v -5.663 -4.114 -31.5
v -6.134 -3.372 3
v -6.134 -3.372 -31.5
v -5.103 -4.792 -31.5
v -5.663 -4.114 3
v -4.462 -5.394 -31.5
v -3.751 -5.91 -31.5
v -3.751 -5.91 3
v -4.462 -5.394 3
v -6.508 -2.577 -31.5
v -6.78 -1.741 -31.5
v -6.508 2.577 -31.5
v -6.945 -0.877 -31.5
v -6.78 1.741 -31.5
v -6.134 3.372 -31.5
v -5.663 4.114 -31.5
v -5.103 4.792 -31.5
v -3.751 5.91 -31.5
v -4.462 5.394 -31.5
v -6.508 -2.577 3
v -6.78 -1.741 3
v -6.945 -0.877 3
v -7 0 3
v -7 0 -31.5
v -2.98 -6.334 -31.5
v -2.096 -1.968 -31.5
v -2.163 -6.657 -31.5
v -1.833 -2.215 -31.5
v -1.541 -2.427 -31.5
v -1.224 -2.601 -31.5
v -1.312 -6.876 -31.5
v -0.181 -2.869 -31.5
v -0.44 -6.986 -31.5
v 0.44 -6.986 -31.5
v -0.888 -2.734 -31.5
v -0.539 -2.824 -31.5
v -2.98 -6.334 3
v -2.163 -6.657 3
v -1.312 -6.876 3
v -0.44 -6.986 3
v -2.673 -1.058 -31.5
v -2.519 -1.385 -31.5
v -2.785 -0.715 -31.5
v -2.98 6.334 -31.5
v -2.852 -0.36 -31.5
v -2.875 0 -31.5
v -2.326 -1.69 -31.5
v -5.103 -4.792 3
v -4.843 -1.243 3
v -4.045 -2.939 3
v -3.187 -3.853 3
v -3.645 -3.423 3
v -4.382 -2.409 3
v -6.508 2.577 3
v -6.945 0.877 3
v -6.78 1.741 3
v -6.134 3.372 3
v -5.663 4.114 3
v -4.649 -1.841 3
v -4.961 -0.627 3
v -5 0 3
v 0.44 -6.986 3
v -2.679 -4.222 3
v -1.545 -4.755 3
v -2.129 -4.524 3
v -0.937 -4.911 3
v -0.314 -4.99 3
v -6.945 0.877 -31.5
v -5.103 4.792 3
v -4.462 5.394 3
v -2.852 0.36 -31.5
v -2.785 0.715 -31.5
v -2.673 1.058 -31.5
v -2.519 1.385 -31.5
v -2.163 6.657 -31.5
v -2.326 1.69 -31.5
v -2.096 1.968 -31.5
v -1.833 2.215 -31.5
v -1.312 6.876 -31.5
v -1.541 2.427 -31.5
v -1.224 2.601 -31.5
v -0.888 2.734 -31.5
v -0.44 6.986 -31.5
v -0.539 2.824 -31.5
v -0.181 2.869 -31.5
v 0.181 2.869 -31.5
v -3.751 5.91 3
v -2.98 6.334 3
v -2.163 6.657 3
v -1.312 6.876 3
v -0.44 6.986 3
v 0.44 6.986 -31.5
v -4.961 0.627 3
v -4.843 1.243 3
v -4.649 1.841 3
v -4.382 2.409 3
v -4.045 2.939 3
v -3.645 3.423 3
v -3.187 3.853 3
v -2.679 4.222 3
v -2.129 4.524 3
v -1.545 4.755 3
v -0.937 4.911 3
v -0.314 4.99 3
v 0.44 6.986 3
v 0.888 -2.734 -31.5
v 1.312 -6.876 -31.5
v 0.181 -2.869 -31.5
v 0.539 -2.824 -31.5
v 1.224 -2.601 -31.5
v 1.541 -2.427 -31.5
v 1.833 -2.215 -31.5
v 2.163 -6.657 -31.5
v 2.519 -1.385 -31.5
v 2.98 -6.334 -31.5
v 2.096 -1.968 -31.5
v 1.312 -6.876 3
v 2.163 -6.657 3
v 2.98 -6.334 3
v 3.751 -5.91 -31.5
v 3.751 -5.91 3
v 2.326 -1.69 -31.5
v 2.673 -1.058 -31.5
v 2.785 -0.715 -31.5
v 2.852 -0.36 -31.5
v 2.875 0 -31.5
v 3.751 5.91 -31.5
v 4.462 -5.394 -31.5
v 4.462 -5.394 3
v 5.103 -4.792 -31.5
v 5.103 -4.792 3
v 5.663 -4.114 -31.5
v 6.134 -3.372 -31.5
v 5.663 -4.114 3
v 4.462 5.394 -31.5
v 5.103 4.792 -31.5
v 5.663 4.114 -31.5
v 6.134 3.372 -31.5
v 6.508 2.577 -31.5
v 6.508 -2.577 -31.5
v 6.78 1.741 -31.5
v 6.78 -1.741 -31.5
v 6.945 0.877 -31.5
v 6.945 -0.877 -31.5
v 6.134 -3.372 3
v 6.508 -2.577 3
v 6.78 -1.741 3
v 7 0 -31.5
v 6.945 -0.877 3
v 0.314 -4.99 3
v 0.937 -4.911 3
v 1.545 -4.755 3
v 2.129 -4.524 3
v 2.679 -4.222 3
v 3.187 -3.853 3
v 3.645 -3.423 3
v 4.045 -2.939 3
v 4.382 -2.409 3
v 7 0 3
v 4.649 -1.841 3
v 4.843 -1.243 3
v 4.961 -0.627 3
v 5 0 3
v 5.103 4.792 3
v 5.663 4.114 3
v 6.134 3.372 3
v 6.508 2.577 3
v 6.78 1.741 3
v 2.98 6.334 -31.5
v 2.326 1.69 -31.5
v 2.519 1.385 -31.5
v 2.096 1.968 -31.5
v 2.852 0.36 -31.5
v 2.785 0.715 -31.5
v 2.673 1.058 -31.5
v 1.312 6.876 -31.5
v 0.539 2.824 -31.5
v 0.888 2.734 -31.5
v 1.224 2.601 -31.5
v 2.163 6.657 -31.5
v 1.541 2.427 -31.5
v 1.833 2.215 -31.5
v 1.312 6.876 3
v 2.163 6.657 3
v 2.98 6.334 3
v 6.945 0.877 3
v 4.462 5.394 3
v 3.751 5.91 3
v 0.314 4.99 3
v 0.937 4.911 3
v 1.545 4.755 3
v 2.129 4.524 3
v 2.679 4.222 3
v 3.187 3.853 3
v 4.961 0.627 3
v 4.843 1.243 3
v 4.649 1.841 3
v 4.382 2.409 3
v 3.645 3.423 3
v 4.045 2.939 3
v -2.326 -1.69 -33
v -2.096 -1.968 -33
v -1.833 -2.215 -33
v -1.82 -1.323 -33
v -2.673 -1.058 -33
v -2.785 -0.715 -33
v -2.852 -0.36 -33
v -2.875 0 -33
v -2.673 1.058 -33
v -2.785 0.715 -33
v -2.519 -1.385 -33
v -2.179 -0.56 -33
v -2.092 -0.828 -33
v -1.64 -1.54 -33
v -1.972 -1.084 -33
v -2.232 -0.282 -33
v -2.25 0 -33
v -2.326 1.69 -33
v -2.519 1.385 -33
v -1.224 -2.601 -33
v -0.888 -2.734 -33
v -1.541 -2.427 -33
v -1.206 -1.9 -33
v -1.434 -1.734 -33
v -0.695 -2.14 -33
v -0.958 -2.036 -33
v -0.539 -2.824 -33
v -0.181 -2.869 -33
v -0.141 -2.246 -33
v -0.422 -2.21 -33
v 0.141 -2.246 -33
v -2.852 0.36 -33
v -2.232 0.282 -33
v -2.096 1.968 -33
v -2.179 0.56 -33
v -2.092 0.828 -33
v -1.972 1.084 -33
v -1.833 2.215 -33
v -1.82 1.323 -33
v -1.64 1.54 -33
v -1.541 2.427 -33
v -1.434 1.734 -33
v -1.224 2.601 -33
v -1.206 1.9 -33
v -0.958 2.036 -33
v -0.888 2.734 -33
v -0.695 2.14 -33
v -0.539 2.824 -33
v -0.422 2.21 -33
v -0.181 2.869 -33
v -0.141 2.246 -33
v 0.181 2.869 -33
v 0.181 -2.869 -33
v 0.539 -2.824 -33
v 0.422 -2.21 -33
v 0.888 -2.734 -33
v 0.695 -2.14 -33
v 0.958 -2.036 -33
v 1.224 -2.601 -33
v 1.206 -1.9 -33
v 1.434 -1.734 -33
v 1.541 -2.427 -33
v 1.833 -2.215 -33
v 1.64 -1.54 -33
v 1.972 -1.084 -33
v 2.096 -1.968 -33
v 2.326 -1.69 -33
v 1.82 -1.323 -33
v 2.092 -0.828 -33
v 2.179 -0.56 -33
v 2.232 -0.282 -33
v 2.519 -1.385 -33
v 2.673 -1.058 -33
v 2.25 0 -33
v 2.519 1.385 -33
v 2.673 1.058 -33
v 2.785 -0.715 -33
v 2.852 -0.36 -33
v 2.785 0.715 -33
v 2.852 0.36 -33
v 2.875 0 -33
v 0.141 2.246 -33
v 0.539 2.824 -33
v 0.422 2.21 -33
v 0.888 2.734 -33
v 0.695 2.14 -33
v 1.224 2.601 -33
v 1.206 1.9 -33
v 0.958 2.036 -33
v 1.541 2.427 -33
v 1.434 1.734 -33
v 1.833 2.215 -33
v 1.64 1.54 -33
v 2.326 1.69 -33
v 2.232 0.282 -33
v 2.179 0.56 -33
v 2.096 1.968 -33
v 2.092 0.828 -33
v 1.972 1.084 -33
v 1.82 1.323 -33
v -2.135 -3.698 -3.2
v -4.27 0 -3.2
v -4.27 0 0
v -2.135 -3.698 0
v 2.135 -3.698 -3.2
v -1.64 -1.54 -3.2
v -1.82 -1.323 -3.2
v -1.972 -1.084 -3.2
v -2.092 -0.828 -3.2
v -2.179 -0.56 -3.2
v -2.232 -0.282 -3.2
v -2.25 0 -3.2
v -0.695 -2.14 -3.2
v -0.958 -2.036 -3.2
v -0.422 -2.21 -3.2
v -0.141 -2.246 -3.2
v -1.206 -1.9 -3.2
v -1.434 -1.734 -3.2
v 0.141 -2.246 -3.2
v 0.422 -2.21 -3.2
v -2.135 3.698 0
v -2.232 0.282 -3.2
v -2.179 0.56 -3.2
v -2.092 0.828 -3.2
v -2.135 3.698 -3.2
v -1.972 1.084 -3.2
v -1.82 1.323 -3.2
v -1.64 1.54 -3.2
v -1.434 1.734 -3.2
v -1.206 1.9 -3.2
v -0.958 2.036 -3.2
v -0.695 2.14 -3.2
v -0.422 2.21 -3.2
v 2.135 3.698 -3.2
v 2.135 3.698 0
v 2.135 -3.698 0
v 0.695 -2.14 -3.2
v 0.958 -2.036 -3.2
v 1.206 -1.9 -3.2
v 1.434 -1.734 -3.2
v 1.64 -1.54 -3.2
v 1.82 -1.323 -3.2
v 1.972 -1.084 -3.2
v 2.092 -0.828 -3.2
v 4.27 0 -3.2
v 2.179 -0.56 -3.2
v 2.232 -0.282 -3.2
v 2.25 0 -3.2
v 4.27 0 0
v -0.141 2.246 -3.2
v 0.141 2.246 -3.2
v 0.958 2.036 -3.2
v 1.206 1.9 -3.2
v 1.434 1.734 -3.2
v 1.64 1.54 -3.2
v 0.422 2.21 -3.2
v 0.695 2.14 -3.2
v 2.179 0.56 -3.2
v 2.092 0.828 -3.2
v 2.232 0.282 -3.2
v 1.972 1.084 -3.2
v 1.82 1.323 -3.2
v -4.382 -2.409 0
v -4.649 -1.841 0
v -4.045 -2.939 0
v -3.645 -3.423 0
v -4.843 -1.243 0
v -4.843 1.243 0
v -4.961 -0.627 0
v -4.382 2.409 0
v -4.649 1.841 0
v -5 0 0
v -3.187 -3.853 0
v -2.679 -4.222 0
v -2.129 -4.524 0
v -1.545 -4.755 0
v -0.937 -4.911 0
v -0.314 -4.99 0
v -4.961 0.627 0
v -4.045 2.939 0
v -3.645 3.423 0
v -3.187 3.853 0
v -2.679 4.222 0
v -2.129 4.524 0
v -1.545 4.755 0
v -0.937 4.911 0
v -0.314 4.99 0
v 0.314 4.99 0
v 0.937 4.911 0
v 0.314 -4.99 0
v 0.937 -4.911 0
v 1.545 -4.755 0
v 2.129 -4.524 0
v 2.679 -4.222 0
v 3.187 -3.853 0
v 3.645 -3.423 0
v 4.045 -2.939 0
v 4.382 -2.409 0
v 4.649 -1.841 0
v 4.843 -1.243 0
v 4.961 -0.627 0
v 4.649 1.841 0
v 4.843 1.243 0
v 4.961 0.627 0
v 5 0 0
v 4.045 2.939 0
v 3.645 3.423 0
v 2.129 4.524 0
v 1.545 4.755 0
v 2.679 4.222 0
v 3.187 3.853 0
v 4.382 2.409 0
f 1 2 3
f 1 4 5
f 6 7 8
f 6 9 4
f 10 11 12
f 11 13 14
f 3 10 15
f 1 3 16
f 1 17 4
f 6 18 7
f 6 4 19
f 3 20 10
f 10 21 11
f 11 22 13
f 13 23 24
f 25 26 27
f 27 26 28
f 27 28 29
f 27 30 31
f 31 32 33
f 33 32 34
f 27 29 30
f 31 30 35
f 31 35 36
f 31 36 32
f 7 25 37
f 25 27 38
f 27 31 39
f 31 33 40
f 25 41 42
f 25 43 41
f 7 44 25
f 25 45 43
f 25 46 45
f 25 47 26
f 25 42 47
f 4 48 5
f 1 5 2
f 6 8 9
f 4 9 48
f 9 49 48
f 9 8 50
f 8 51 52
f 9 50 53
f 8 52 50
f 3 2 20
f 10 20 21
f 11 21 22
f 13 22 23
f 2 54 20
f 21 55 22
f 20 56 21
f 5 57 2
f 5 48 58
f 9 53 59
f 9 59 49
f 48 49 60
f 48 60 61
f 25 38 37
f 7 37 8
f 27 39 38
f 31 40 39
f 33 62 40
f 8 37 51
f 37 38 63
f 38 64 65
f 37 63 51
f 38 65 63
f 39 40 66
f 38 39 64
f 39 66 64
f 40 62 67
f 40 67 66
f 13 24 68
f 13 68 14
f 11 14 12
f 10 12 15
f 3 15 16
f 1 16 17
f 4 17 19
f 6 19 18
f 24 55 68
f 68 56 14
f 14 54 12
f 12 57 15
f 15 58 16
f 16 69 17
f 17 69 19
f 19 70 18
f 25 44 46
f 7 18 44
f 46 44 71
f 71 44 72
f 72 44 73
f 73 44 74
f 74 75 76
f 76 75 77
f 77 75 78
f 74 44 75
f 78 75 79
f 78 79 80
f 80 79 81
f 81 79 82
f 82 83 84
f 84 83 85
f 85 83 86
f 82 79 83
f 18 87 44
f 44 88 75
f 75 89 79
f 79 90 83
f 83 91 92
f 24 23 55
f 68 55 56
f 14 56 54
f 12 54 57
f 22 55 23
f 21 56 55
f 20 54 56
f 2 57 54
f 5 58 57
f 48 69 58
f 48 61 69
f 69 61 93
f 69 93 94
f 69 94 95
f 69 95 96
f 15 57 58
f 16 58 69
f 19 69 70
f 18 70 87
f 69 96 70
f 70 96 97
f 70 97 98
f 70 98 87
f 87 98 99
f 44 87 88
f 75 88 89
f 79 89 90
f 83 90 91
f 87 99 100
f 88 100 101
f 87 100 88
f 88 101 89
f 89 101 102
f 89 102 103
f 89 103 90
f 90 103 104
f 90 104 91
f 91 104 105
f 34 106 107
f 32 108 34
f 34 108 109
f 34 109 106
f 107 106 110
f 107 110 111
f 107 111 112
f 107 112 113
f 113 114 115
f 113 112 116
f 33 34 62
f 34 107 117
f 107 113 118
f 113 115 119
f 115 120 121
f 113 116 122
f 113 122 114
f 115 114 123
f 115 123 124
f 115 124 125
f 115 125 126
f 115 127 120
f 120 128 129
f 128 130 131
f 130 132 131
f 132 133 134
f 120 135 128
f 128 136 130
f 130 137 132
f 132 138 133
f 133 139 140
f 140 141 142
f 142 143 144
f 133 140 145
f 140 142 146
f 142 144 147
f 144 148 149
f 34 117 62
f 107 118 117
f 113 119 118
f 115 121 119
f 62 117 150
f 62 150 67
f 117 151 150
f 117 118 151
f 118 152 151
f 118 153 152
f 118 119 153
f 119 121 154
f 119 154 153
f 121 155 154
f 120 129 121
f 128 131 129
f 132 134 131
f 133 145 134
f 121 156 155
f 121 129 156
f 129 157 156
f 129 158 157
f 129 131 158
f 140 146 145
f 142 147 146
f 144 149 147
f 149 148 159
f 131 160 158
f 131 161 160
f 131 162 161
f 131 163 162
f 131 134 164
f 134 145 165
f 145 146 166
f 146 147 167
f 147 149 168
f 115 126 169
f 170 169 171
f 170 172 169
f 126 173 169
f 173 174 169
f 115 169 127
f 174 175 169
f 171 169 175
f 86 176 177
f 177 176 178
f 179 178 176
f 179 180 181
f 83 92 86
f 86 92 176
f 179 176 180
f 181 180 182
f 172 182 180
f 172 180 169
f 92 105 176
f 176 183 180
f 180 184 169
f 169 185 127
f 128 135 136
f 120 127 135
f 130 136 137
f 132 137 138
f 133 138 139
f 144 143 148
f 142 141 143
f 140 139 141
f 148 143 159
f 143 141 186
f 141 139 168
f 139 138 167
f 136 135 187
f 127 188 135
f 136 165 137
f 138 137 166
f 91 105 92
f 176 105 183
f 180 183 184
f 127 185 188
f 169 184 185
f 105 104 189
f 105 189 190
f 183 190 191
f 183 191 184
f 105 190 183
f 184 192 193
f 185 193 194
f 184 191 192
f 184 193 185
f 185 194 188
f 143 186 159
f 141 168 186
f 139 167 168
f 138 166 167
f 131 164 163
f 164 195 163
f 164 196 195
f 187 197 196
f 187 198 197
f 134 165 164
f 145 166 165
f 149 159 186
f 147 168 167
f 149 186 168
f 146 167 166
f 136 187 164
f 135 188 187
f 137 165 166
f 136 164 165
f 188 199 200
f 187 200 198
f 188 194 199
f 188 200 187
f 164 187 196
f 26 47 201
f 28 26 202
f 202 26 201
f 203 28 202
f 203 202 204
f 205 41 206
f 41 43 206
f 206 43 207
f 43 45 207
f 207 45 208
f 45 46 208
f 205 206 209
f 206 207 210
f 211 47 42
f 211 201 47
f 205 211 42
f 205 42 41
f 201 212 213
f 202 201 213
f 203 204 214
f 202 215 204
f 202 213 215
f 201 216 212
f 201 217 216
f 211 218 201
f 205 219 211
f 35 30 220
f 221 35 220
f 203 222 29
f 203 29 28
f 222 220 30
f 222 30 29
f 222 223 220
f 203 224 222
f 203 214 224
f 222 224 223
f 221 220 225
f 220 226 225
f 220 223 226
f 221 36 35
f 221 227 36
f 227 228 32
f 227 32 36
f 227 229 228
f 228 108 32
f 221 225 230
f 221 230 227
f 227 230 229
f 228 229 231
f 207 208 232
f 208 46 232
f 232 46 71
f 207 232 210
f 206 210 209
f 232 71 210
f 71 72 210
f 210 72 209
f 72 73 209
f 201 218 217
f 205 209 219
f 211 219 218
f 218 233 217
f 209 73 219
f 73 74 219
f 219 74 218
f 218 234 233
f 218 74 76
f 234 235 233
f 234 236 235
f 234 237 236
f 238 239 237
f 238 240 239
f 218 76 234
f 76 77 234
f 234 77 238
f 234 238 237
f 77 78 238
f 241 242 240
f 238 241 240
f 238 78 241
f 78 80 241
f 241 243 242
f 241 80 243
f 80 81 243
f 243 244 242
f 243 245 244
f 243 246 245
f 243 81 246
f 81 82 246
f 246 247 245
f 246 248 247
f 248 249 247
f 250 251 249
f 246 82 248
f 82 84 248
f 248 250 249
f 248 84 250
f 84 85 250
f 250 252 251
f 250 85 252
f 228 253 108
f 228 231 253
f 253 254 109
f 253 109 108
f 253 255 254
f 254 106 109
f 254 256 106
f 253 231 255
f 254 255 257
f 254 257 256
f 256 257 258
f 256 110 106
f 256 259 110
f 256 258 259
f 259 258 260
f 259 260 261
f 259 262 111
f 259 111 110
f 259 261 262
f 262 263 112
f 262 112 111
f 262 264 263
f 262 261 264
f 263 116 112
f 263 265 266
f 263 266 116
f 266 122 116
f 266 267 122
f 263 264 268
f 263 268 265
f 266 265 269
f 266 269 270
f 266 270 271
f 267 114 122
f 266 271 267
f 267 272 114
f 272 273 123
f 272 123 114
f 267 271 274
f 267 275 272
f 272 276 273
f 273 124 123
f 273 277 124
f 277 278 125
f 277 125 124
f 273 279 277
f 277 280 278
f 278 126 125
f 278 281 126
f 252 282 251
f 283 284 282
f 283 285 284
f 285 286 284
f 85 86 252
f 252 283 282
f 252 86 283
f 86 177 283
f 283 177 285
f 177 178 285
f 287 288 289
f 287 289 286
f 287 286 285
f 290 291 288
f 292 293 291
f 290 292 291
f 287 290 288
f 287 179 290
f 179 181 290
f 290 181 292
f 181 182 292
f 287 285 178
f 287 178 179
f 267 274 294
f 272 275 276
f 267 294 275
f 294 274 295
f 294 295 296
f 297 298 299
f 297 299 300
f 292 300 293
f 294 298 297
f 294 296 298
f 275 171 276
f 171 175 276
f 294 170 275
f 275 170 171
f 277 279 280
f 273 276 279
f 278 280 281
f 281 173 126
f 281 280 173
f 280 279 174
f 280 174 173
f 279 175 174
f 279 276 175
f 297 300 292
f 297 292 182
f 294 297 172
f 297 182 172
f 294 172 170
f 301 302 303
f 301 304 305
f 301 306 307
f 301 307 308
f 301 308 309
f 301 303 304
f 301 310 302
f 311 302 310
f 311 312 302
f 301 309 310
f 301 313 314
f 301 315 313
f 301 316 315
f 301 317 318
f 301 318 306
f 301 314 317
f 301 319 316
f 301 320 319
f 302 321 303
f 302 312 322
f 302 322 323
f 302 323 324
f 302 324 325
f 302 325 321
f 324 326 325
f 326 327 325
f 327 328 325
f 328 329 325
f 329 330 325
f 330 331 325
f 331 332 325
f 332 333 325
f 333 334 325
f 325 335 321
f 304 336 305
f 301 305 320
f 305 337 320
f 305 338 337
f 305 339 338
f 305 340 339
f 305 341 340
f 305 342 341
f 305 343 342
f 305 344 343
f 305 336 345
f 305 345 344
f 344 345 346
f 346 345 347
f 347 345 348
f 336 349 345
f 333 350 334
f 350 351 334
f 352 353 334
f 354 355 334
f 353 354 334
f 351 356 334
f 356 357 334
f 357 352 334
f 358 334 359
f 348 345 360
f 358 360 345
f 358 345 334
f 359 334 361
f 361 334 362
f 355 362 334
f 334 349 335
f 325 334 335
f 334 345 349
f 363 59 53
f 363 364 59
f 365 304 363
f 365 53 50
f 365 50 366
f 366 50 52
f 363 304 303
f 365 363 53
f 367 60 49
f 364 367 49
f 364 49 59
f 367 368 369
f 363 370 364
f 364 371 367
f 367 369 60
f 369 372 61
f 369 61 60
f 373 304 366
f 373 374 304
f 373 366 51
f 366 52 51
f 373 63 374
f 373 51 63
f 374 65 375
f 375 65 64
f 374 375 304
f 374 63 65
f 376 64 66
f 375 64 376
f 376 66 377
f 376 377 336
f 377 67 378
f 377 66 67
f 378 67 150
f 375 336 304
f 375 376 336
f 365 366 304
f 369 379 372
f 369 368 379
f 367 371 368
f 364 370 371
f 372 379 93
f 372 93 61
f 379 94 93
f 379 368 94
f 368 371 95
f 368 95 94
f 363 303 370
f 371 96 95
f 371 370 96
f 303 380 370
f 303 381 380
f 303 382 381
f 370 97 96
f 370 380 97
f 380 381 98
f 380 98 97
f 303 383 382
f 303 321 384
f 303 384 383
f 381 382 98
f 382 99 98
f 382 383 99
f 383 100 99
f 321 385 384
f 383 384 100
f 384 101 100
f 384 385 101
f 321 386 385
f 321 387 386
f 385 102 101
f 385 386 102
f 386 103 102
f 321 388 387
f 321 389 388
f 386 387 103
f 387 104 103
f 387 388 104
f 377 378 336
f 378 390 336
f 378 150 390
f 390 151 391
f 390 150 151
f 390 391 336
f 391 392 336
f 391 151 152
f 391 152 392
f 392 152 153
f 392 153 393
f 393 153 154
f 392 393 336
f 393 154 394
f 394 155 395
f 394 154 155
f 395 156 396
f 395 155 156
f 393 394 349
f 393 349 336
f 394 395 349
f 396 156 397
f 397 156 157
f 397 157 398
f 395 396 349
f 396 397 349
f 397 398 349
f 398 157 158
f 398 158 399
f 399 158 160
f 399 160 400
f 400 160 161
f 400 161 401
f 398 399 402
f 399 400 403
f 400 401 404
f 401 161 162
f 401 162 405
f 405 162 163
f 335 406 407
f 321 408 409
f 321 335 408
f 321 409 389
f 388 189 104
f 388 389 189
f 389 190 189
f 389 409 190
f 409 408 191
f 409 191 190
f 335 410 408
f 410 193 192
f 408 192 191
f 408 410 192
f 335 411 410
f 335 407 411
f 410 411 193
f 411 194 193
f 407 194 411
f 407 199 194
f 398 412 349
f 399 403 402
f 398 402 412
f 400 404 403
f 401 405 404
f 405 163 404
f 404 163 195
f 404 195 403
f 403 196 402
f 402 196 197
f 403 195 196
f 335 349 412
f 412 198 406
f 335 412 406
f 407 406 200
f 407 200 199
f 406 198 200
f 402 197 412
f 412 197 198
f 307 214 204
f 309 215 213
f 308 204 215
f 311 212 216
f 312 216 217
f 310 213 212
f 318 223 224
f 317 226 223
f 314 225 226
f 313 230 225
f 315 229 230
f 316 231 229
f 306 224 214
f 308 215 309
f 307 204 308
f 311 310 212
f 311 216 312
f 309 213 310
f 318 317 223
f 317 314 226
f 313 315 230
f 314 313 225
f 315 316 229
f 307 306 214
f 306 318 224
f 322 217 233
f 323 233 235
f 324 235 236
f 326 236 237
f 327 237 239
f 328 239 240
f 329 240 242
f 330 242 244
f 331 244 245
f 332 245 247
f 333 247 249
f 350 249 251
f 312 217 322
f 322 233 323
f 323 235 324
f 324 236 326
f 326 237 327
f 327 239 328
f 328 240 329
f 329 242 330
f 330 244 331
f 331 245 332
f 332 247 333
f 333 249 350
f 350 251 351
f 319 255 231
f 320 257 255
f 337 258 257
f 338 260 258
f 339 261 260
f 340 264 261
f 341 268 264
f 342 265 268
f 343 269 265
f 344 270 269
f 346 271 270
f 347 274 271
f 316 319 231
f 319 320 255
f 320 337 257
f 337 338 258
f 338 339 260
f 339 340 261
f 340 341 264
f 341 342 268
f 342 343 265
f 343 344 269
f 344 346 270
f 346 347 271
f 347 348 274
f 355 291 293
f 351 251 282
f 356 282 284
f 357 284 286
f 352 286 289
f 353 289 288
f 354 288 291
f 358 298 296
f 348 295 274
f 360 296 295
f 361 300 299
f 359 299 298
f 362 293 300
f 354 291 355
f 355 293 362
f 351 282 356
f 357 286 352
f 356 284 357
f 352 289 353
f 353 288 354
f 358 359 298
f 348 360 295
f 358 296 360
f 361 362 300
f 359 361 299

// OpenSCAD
$fn = 50;

difference() {
	union() {
		translate(v = [0, 0, -31.5]) {
			cylinder(h = 34.5, r = 7.0);
		}
		#translate(v = [0, 0, -33.0]) {
			cylinder(h = 33, r = 2.875);
		}
	}
	union() {
		translate(v = [0, 0, 0]) {
			rotate(a = [0, 0, 0]) {
				difference() {
					union() {
						translate(v = [0, 0, -3.2]) {
							linear_extrude(height = 3.2) {
								polygon(points = [[4.2698, 0.0], [2.1349000000000005, 3.697755269078796], [-2.134899999999999, 3.6977552690787965], [-4.2698, 5.228996902999369e-16], [-2.134900000000002, -3.6977552690787956], [2.1348999999999974, -3.697755269078798]]);
							}
						}
					}
					union();
				}
			}
		}
		#cylinder(h = 3, r = 5.0);
		#translate(v = [0, 0, -100.0]) {
			cylinder(h = 200, r = 2.25);
		}
	}
}
